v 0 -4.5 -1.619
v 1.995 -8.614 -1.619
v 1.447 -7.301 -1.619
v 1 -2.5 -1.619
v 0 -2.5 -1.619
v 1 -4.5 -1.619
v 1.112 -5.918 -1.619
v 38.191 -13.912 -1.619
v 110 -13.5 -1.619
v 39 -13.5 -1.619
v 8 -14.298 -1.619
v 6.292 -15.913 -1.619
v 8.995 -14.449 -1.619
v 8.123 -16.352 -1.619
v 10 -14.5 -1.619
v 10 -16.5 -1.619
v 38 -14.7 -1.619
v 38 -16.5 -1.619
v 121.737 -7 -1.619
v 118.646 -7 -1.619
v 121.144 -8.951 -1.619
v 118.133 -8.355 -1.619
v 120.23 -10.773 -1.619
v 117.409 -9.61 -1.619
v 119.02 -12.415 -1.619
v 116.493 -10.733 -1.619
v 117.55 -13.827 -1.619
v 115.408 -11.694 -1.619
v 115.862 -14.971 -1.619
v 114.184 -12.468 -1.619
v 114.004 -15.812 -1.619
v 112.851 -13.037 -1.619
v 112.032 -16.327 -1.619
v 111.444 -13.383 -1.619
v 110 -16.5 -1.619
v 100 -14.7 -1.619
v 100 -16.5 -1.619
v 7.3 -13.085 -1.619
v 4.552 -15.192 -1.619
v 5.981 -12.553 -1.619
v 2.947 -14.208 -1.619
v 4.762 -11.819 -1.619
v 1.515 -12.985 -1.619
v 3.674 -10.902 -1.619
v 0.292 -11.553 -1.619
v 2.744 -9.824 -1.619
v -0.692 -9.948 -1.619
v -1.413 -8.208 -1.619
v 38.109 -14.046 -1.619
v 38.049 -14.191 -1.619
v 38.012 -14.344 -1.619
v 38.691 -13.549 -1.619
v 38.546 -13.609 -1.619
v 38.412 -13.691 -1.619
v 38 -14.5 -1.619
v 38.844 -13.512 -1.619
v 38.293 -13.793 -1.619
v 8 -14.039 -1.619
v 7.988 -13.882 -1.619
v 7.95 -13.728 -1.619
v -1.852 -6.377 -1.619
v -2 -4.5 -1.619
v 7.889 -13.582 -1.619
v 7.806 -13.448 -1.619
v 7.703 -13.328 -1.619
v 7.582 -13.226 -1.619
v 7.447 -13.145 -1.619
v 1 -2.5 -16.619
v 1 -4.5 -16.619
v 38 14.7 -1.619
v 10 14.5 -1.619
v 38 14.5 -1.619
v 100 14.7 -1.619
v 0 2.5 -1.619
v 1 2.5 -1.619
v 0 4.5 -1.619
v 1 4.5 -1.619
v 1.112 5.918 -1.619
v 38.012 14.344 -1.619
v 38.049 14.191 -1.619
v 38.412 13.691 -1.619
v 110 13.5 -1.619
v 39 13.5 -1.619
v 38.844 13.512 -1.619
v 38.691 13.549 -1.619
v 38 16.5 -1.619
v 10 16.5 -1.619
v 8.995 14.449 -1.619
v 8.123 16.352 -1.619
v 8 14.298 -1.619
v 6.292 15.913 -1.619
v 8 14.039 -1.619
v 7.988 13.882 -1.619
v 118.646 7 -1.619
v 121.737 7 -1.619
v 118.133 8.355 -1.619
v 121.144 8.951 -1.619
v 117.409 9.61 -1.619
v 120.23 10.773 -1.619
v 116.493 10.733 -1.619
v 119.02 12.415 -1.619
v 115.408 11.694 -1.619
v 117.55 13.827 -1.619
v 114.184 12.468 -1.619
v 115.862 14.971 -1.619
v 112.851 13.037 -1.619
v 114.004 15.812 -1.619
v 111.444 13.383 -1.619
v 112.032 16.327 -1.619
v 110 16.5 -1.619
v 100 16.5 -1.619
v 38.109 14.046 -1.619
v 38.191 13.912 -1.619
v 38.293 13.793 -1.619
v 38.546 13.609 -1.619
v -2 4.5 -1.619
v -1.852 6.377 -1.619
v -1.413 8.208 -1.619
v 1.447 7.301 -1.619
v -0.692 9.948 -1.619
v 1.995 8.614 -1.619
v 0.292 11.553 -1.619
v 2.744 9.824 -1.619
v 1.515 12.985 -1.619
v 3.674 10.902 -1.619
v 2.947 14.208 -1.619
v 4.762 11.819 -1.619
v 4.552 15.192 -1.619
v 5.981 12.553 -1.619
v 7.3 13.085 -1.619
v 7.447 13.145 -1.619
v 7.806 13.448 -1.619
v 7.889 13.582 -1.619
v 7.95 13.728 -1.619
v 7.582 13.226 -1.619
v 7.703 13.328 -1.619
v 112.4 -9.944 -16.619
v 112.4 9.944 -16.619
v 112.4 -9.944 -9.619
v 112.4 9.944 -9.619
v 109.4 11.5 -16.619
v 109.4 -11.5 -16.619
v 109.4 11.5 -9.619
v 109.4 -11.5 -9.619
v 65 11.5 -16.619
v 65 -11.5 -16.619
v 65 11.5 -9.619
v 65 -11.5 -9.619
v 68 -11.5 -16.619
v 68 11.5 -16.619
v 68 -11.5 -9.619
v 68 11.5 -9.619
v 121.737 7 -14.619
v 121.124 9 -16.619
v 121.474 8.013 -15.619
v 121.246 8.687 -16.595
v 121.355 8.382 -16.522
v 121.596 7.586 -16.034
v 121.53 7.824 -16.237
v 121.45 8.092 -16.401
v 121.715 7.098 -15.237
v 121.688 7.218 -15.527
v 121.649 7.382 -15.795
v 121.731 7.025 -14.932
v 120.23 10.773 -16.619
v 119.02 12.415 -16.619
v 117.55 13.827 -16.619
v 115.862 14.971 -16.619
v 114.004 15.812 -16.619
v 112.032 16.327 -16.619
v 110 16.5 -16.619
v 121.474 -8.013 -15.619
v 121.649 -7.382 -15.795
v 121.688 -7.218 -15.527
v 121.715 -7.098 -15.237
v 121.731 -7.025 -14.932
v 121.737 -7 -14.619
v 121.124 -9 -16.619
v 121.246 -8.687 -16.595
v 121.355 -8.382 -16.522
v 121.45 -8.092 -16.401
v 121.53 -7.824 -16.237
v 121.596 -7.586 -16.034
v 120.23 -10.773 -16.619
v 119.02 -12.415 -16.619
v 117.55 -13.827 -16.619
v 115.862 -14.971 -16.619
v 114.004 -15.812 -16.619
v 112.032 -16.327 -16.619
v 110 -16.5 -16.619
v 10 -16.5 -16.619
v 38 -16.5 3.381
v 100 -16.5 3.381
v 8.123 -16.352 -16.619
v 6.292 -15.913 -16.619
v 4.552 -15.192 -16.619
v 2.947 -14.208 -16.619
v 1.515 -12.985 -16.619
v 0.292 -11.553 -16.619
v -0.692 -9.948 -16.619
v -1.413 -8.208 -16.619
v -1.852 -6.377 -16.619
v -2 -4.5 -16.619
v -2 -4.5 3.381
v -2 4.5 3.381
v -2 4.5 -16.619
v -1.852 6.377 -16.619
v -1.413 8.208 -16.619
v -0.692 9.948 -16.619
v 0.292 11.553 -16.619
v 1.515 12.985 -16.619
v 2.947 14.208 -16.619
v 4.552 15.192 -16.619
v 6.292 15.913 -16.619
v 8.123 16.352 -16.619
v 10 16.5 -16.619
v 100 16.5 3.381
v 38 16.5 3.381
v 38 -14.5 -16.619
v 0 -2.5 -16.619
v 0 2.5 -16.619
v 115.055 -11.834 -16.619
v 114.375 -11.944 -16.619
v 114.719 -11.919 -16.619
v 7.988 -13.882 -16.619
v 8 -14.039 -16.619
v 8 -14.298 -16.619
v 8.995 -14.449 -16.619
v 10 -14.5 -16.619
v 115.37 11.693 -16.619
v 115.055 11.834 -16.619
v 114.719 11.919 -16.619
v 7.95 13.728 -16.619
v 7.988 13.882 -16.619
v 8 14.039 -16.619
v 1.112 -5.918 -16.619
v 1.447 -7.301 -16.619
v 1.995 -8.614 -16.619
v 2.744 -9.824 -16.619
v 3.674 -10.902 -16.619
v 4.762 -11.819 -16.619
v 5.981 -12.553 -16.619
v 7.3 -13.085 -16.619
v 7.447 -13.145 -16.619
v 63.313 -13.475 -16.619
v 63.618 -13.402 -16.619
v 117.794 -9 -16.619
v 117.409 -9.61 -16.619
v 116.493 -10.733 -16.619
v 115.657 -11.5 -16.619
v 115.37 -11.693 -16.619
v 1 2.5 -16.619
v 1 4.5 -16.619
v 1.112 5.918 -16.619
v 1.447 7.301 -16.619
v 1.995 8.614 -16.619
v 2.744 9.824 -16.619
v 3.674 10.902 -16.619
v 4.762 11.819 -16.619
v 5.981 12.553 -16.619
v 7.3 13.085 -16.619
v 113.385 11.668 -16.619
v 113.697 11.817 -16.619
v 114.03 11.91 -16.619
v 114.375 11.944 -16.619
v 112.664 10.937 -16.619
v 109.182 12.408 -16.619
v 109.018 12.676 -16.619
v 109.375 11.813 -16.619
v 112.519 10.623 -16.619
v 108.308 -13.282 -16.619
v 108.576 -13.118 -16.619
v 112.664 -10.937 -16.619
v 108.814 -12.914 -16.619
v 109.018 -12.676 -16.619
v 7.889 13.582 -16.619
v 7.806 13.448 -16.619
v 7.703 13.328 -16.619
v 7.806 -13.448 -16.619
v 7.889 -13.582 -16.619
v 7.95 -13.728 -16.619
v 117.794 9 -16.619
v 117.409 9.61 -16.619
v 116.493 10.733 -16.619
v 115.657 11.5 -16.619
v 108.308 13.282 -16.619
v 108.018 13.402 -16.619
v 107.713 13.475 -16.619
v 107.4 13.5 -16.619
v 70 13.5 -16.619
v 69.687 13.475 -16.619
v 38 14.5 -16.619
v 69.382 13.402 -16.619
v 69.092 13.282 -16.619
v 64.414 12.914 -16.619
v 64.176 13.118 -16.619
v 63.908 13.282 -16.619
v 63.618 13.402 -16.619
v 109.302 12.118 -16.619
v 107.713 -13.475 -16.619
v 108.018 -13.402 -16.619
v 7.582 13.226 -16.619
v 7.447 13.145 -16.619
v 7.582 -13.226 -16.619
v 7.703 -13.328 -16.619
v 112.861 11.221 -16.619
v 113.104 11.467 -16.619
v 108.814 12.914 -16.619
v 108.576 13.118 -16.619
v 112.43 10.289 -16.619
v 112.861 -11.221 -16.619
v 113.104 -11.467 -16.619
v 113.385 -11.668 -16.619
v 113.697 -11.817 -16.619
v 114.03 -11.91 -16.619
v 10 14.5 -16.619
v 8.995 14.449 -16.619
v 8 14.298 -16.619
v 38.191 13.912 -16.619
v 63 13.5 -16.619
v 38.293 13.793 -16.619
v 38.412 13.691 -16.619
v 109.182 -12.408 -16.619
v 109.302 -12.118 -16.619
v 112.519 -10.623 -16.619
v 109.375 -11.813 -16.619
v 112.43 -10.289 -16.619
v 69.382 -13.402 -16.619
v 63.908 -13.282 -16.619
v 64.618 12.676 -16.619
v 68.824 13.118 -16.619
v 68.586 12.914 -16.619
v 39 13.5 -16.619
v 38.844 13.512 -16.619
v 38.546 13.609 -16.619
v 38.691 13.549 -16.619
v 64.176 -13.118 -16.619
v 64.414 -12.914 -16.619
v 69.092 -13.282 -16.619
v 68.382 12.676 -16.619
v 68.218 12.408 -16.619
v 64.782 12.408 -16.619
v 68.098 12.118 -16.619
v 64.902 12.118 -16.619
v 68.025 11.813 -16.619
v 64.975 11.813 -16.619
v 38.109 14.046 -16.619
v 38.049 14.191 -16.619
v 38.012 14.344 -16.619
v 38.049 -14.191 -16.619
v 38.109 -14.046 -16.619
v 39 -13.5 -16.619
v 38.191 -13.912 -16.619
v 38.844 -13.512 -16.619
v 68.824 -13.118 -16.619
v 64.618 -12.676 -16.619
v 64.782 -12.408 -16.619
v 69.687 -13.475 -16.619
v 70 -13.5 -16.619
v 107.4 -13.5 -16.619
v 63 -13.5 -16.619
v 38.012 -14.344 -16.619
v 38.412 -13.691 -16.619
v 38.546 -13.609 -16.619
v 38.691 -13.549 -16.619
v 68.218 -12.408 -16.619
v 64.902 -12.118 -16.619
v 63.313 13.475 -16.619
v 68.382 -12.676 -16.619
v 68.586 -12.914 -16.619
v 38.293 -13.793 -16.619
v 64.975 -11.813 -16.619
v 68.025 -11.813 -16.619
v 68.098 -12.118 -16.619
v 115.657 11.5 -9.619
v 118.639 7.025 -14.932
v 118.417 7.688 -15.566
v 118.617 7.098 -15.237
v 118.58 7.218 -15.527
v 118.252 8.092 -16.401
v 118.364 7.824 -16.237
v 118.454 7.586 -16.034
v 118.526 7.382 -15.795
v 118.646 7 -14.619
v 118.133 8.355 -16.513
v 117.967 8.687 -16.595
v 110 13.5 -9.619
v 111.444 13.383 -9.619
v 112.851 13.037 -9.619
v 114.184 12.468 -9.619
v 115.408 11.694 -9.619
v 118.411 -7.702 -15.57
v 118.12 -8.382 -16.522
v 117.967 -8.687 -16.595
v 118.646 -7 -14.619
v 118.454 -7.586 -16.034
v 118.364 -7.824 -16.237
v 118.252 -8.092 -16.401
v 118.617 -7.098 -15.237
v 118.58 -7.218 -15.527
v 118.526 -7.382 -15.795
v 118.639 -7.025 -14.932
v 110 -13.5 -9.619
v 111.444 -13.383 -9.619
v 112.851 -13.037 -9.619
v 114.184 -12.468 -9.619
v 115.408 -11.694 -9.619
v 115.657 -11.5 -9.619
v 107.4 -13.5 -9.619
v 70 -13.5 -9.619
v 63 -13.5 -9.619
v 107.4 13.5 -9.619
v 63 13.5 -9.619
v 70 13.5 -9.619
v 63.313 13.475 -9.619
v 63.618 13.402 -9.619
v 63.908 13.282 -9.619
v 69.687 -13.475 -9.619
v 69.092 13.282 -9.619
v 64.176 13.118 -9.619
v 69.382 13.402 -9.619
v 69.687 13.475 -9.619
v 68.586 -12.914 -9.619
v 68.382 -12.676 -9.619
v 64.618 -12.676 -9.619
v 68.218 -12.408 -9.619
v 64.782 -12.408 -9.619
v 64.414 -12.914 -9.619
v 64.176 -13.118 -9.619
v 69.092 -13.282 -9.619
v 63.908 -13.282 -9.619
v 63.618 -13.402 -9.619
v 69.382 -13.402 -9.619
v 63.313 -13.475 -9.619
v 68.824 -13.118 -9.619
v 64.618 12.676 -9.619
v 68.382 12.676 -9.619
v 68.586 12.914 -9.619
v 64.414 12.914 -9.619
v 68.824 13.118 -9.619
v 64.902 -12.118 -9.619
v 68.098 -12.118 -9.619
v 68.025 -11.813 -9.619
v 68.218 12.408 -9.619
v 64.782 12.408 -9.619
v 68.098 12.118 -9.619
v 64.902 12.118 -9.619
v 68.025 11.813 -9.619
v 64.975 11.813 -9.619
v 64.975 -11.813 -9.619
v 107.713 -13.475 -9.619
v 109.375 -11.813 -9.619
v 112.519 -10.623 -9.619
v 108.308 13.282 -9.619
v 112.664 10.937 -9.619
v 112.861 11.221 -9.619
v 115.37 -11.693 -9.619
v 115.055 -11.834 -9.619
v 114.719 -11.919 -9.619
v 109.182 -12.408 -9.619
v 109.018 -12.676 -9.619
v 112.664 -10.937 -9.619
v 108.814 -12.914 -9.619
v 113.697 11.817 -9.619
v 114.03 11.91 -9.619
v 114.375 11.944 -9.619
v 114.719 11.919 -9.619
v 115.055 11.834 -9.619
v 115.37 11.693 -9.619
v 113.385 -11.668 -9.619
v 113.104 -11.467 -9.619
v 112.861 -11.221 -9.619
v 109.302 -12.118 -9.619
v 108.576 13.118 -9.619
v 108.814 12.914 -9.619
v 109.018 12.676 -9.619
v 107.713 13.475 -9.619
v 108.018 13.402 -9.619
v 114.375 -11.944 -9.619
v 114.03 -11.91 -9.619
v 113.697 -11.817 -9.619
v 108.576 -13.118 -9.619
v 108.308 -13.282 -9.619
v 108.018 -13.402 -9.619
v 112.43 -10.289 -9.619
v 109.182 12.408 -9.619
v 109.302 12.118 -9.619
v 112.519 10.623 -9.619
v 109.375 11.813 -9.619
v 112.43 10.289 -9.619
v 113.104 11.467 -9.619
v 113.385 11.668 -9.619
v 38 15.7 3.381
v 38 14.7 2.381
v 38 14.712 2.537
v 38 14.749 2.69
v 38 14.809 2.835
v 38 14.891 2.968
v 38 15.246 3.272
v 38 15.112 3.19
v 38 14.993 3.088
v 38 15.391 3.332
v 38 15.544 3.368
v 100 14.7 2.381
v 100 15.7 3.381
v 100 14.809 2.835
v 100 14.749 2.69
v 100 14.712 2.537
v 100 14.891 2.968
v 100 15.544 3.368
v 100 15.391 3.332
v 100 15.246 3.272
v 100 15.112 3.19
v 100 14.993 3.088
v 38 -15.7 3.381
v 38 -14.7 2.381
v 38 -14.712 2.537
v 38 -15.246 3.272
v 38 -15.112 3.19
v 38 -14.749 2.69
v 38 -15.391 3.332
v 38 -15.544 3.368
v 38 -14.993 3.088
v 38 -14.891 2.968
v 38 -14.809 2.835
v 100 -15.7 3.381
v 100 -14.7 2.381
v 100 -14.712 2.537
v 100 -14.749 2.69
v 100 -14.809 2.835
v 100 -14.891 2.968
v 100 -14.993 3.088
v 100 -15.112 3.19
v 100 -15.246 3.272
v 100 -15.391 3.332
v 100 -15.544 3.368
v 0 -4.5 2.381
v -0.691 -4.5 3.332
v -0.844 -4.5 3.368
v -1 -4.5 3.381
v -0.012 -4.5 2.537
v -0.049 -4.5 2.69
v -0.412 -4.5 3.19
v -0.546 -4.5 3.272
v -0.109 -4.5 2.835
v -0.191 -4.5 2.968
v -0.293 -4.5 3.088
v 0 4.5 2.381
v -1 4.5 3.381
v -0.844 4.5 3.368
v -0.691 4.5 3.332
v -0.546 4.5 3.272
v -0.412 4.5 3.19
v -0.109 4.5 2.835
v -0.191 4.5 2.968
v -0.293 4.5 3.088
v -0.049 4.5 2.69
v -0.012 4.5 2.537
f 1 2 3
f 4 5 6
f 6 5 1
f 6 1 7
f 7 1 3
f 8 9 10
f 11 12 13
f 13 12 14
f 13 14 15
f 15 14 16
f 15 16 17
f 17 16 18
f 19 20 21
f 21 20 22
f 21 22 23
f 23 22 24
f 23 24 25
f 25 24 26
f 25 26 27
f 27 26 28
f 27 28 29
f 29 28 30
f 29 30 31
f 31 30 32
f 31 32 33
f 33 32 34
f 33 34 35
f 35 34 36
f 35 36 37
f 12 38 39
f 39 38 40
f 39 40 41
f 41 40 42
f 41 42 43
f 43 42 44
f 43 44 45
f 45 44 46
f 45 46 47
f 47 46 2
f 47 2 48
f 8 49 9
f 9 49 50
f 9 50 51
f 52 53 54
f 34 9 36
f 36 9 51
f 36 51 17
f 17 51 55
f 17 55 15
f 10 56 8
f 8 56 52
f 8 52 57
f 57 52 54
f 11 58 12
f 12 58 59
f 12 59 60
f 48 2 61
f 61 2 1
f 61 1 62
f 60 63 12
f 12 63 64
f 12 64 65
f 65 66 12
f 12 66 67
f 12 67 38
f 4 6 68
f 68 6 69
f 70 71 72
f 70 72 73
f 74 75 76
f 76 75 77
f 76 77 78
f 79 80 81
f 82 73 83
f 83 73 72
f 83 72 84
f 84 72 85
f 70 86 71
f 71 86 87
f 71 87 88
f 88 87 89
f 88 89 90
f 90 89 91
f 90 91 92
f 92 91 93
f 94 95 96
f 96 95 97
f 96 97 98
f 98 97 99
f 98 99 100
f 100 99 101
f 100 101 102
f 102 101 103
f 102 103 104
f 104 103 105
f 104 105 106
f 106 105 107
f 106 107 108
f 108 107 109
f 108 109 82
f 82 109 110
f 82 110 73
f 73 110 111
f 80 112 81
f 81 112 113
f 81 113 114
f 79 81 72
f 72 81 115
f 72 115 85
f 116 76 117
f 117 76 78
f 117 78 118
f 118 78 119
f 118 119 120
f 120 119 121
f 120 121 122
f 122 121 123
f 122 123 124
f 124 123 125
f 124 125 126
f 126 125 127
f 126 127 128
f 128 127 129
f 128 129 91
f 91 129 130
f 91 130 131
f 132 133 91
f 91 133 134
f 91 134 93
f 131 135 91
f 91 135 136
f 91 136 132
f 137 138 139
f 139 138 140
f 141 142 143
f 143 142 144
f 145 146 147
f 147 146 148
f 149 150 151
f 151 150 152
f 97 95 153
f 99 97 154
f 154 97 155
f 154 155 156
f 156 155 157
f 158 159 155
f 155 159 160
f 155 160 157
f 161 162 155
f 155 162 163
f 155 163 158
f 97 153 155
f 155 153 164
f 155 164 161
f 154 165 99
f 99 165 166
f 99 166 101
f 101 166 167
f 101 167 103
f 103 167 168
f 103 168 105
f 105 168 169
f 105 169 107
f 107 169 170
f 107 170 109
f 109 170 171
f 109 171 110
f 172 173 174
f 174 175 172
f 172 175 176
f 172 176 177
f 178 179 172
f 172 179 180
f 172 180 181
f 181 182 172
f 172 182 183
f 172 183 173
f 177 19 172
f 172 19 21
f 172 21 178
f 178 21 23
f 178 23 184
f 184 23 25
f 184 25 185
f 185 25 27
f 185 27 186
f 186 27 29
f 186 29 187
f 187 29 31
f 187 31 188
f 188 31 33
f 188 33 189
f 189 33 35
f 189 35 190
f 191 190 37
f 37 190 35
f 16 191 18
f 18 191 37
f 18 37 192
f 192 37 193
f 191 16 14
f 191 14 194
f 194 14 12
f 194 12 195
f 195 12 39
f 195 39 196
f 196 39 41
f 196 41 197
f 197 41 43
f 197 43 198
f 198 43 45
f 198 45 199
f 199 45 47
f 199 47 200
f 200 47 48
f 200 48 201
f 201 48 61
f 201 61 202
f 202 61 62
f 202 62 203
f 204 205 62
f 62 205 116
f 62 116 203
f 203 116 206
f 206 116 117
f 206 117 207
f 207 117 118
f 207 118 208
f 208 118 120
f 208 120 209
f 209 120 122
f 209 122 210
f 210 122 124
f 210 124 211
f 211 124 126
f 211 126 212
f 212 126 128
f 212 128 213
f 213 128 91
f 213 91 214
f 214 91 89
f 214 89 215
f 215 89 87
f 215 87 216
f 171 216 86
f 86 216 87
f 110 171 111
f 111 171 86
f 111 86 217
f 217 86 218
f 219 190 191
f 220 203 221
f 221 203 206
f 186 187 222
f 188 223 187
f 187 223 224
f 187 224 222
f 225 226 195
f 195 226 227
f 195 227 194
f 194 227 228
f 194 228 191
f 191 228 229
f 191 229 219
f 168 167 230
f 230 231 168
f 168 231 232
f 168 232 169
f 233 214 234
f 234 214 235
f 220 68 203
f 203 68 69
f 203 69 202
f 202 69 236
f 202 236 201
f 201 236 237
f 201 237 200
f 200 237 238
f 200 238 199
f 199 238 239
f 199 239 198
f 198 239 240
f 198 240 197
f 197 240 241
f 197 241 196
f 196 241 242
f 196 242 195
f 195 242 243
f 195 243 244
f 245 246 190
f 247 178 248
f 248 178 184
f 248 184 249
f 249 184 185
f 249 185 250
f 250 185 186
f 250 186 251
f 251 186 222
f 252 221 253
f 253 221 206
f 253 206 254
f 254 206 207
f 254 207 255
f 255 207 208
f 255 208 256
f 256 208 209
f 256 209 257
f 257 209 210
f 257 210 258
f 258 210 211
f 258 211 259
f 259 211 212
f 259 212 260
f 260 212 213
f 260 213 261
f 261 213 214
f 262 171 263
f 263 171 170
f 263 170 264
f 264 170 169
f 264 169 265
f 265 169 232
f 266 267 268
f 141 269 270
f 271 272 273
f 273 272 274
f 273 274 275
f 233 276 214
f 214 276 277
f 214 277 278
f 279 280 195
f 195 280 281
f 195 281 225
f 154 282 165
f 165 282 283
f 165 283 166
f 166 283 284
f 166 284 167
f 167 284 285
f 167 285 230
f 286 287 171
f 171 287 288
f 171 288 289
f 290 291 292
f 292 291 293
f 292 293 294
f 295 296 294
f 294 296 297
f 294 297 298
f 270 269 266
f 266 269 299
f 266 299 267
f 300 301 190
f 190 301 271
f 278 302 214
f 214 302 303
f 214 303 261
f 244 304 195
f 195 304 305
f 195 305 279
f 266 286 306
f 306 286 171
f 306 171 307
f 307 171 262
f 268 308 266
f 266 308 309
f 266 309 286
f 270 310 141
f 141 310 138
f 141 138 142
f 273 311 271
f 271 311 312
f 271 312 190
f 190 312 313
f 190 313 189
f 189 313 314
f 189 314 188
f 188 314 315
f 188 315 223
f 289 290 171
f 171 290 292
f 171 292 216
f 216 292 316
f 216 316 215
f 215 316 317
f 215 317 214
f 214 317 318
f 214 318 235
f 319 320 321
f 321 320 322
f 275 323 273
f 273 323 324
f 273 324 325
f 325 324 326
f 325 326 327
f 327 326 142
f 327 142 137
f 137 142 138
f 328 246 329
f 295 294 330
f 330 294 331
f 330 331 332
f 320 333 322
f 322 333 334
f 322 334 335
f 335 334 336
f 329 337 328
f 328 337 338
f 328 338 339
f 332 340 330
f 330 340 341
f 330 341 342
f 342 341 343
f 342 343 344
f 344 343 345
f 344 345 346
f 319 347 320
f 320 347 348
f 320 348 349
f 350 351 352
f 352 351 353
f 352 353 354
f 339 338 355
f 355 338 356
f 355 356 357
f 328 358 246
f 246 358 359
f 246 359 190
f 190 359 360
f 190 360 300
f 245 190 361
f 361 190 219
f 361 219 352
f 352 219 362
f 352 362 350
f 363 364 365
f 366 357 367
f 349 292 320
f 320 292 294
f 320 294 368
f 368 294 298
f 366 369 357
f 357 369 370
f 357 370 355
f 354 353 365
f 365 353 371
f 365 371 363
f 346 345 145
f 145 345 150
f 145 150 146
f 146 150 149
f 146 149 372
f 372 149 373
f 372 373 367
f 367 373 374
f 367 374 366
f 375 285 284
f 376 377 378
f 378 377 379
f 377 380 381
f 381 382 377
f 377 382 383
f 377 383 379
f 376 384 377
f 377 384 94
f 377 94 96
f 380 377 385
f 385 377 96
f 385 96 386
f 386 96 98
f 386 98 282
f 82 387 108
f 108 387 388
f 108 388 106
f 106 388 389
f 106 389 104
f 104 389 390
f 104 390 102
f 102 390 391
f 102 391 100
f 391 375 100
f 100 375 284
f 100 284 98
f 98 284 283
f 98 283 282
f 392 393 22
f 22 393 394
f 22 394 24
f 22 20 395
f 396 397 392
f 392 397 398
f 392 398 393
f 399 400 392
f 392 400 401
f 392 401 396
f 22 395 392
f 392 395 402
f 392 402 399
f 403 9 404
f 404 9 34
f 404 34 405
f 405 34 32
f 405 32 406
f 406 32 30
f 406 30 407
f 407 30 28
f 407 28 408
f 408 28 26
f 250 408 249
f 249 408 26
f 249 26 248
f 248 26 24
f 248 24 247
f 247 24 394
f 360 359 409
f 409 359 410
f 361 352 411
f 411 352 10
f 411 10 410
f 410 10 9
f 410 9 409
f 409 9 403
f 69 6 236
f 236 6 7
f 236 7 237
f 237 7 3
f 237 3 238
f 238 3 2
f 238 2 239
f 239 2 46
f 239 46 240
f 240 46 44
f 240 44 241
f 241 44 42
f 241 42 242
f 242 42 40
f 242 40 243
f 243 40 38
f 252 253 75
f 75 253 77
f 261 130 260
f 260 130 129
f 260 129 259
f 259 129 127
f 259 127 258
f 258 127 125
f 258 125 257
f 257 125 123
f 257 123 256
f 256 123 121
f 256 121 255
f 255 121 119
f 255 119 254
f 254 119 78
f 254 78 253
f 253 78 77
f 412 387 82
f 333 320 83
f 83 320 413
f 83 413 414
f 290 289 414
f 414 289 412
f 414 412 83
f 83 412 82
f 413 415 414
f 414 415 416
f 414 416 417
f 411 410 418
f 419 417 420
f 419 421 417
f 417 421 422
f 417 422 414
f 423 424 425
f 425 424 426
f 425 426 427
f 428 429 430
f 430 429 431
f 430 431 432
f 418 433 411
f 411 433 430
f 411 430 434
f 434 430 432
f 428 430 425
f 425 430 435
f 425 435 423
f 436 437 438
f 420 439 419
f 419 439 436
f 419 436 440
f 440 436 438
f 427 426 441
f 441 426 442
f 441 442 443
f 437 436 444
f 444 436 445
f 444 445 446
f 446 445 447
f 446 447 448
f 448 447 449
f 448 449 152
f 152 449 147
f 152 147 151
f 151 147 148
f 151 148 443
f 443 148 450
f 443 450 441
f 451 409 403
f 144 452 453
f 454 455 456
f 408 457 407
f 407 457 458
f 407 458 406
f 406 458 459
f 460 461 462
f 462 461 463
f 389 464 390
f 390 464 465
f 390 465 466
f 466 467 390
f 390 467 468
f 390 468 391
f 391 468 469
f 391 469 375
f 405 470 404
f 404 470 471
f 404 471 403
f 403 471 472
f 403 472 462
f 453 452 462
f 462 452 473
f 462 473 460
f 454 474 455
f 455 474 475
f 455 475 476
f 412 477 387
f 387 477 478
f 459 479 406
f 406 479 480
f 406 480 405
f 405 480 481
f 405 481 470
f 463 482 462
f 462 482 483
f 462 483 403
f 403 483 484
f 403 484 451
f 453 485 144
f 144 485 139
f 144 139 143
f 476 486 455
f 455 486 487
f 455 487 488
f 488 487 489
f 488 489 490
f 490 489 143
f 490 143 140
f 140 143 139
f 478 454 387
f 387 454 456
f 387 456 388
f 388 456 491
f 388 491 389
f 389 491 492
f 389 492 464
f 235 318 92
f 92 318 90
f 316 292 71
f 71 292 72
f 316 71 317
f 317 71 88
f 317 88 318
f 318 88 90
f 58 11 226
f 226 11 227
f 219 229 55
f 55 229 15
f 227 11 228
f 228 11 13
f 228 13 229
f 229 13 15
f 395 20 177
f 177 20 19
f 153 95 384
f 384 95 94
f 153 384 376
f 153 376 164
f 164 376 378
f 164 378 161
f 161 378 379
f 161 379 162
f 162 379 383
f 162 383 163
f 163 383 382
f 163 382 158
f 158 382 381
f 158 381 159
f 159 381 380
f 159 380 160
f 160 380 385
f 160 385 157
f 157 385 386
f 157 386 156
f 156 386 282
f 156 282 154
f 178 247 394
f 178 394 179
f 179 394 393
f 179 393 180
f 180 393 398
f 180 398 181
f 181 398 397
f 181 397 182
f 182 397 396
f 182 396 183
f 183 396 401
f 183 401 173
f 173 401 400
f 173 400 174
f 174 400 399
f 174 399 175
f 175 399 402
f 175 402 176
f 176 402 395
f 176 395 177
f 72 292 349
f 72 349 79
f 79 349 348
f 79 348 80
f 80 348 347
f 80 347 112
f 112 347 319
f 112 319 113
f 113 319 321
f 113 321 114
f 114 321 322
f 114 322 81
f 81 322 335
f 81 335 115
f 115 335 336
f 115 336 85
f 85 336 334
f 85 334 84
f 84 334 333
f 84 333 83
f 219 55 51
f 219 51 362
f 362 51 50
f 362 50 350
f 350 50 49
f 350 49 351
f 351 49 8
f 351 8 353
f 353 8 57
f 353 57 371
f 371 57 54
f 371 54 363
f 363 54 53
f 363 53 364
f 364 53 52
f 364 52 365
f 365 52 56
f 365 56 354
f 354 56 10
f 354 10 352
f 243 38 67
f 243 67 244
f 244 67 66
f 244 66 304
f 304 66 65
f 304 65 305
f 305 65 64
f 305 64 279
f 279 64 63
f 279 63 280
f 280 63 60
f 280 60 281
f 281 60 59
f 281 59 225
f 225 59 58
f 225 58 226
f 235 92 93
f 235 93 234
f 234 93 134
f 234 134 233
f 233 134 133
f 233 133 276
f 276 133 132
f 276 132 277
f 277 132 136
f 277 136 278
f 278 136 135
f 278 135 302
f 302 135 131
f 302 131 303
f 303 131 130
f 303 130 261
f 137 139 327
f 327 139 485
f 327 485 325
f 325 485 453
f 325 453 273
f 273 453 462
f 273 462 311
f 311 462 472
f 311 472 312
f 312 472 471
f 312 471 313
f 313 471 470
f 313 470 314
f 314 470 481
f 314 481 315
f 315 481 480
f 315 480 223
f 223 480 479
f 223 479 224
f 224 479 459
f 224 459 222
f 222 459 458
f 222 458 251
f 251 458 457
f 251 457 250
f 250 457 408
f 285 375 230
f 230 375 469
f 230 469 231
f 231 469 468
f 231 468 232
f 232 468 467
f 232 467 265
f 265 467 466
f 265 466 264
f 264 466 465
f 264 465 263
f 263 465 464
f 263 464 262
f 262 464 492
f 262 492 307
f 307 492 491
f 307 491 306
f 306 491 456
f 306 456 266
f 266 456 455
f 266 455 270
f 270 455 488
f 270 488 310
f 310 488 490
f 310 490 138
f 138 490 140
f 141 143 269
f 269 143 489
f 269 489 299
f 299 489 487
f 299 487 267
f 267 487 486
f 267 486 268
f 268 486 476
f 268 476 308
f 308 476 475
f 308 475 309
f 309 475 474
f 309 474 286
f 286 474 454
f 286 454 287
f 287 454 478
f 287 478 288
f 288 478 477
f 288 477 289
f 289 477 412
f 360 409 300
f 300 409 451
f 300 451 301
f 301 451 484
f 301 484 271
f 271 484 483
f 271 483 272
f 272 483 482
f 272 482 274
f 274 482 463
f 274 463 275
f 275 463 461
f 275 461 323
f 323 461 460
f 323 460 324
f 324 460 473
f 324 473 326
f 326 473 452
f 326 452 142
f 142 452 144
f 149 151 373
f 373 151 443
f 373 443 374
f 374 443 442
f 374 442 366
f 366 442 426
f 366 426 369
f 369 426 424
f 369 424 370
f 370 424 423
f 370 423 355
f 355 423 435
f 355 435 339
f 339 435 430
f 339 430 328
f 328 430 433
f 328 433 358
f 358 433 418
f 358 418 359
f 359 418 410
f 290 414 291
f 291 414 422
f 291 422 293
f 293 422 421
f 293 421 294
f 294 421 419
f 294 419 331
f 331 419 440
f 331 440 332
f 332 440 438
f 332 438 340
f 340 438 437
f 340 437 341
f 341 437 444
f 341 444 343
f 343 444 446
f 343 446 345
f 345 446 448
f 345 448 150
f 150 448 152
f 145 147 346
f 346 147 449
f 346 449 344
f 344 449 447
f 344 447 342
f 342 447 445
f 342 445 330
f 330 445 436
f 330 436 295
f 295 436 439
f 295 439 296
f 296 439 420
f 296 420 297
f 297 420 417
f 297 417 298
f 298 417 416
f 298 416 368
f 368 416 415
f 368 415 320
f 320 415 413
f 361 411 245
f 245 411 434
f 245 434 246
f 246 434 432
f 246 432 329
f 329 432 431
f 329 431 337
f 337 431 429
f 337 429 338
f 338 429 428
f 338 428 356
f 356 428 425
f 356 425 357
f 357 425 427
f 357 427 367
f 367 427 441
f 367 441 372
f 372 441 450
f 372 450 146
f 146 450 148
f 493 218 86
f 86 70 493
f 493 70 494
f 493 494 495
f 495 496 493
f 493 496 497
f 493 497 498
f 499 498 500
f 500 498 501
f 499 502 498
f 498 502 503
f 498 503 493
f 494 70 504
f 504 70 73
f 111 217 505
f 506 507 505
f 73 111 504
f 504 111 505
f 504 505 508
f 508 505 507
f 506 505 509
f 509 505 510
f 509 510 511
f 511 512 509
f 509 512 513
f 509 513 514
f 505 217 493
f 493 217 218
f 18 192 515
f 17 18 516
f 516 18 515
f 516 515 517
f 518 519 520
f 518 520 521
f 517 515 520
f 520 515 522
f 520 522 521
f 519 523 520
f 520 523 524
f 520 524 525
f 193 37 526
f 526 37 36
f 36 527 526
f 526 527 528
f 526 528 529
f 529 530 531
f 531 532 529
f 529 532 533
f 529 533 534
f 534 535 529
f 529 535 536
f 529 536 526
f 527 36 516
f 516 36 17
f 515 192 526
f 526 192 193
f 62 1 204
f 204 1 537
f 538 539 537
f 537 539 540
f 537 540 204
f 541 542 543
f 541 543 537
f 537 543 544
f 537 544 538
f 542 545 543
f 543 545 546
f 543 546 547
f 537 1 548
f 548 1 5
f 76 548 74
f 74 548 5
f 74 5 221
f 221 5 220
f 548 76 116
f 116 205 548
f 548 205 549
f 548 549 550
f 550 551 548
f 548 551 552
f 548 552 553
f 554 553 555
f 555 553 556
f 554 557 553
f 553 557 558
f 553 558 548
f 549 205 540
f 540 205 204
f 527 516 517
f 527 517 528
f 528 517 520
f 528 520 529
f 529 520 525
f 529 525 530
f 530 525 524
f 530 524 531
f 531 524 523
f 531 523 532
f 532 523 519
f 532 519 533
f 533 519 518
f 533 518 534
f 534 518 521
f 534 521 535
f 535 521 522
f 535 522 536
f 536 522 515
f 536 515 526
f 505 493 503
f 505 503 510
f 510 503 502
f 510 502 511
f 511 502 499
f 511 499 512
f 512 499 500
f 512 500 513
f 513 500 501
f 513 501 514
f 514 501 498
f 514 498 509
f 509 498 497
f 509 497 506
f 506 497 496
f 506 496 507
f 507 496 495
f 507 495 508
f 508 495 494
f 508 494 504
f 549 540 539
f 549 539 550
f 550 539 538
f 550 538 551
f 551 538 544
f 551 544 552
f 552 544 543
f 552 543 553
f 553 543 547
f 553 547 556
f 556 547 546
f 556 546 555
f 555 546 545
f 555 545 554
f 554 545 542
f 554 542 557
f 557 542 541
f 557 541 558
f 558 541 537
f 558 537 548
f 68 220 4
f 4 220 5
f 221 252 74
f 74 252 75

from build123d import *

# Parameters (mm, degrees)
BOSS_EXTRUDE2_DEPTH                    = 15
SKETCH4_W                              = 3
SKETCH4_H                              = 27
BOSS_EXTRUDE4_CROSS_STRUCTURES_DEPTH   = 15
SKETCH6_W                              = 3
SKETCH6_H                              = 27
CUT_EXTRUDE3_8_MM_SPACING_DEPTH        = 8
CUT_EXTRUDE4_ELECTRONICS_SPACING_DEPTH = 125.021167548
SKETCH8_W                              = 15
SKETCH8_H                              = 14
CUT_EXTRUDE2_USB_C_CUTOUT_DEPTH        = 5
FILLET2_USBC_R                         = 2
FILLET3_INNER_CORNERS_FRONT_R          = 1
FILLET5_INNER_CORNERS_R                = 2
SKETCH18_W                             = 62
SKETCH18_H                             = 1.8
SKETCH18_W_2                           = 2
SKETCH18_H_2                           = 9
BOSS_EXTRUDE7_DEPTH                    = 5
FILLET1_R                              = 1
SKETCH19_W                             = 1
SKETCH19_H                             = 5
CUT_EXTRUDE1_DEPTH                     = 124.762162398


with BuildPart() as part:
    # Sketch3 → Boss-Extrude2 (new body)
    with BuildSketch(Plane.XY.offset(-1.6194024)):
        with BuildLine():
            Line((110, 16.5), (10, 16.5))
            ThreePointArc((10, 16.5), (1.514718626, 12.985281374), (-2, 4.5))
            Line((-2, 4.5), (-2, -4.5))
            ThreePointArc((-2, -4.5), (1.514718626, -12.985281374), (10, -16.5))
            Line((10, -16.5), (110, -16.5))
            ThreePointArc((110, -16.5), (118.485281374, -12.985281374), (122, -4.5))
            Line((122, -4.5), (122, 4.5))
            ThreePointArc((122, 4.5), (118.485281374, 12.985281374), (110, 16.5))
        make_face()
        with BuildLine():
            Line((119, -4.5), (119, 4.5))
            ThreePointArc((119, 4.5), (116.363961031, 10.863961031), (110, 13.5))
            Line((110, 13.5), (10, 13.5))
            ThreePointArc((10, 13.5), (3.636038969, 10.863961031), (1, 4.5))
            Line((1, 4.5), (1, -4.5))
            ThreePointArc((1, -4.5), (3.636038969, -10.863961031), (10, -13.5))
            Line((10, -13.5), (110, -13.5))
            ThreePointArc((110, -13.5), (116.363961031, -10.863961031), (119, -4.5))
        make_face(mode=Mode.SUBTRACT)
    extrude(amount=-BOSS_EXTRUDE2_DEPTH)

    # Sketch4 → Boss-Extrude4 - cross structures (add)
    with BuildSketch(Plane.XY.offset(-1.6194024)):
        with Locations((110.9, 0)):
            Rectangle(SKETCH4_W, SKETCH4_H)
        with Locations((66.5, 0)):
            Rectangle(SKETCH4_W, SKETCH4_H)
    extrude(amount=-BOSS_EXTRUDE4_CROSS_STRUCTURES_DEPTH)

    # Sketch6 → Cut-Extrude3 - 8 mm spacing (cut)
    with BuildSketch(Plane.XY.offset(-1.6194024)):
        with BuildLine():
            Line((109.4, 13.5), (110, 13.5))
            ThreePointArc((110, 13.5), (111.211013131, 13.418152678), (112.4, 13.174099377))
            Line((112.4, 13.174099377), (112.4, -13.174099377))
            ThreePointArc((112.4, -13.174099377), (111.211013131, -13.418152678), (110, -13.5))
            Line((110, -13.5), (109.4, -13.5))
            Line((109.4, -13.5), (109.4, 13.5))
        make_face()
        with Locations((66.5, 0)):
            Rectangle(SKETCH6_W, SKETCH6_H)
    extrude(amount=-CUT_EXTRUDE3_8_MM_SPACING_DEPTH, mode=Mode.SUBTRACT)

    # Sketch7 → Cut-Extrude4 - electronics spacing (cut, through all)
    with BuildSketch(Plane.XY.offset(-1.6194024)):
        with BuildLine():
            Line((38, -14.5), (10, -14.5))
            ThreePointArc((10, -14.5), (8.99491038, -14.44936153), (8, -14.297958971))
            Line((8, -14.297958971), (8, 14.297958971))
            ThreePointArc((8, 14.297958971), (8.99491038, 14.44936153), (10, 14.5))
            Line((10, 14.5), (38, 14.5))
            Line((38, 14.5), (38, -14.5))
        make_face()
    extrude(amount=-CUT_EXTRUDE4_ELECTRONICS_SPACING_DEPTH, mode=Mode.SUBTRACT)

    # Sketch8 → Cut-Extrude2 - USB-C cutout (cut)
    with BuildSketch(Plane(origin=(122, 0, 0), x_dir=(0, 0, -1), z_dir=(1, 0, 0))):
        with Locations((9.1194024, 0)):
            Rectangle(SKETCH8_W, SKETCH8_H)
    extrude(amount=-CUT_EXTRUDE2_USB_C_CUTOUT_DEPTH, mode=Mode.SUBTRACT)

    # Fillet2 - USBC
    fillet2_usbc_edges = [part.edges().sort_by_distance(p)[0] for p in [
        (120.191251414, 7, -16.6194024),
        (120.191251414, -7, -16.6194024),
    ]]
    fillet(fillet2_usbc_edges, radius=FILLET2_USBC_R)

    # Fillet3 - inner corners, front
    fillet3_inner_corners_front_edges = [part.edges().sort_by_distance(p)[0] for p in [
        (38, 13.5, -9.1194024),
        (38, -13.5, -9.1194024),
        (8, -13.274964387, -9.1194024),
        (8, 13.274964387, -9.1194024),
    ]]
    fillet(fillet3_inner_corners_front_edges, radius=FILLET3_INNER_CORNERS_FRONT_R - 0.0001)  # a hair under: the kernel refuses the full size

    # Fillet5 - inner corners
    fillet5_inner_corners_edges = [part.edges().sort_by_distance(p)[0] for p in [
        (112.4, -13.174099377, -13.1194024),
        (109.4, -13.5, -13.1194024),
        (109.4, 13.5, -13.1194024),
        (65, -13.5, -13.1194024),
        (65, 13.5, -13.1194024),
        (68, 13.5, -13.1194024),
        (68, -13.5, -13.1194024),
        (112.4, 13.174099377, -13.1194024),
    ]]
    fillet(fillet5_inner_corners_edges, radius=FILLET5_INNER_CORNERS_R)

    # Sketch18 → Boss-Extrude7 (add)
    with BuildSketch(Plane.XY.offset(-1.6194024)):
        with Locations((69, 15.6)):
            Rectangle(SKETCH18_W, SKETCH18_H)
        with Locations((69, -15.6)):
            Rectangle(SKETCH18_W, SKETCH18_H)
        with Locations((-1, 0)):
            Rectangle(SKETCH18_W_2, SKETCH18_H_2)
    extrude(amount=BOSS_EXTRUDE7_DEPTH)

    # Fillet1
    fillet1_edges = [part.edges().sort_by_distance(p)[0] for p in [
        (69, 14.7, 3.3805976),
        (69, -14.7, 3.3805976),
        (0, 0, 3.3805976),
    ]]
    fillet(fillet1_edges, radius=FILLET1_R)

    # Sketch19 → Cut-Extrude1 (cut, through all)
    with BuildSketch(Plane.XY.offset(-1.6194024)):
        with Locations((0.5, 0)):
            Rectangle(SKETCH19_W, SKETCH19_H)
    extrude(amount=-CUT_EXTRUDE1_DEPTH, mode=Mode.SUBTRACT)


solid = part.part
